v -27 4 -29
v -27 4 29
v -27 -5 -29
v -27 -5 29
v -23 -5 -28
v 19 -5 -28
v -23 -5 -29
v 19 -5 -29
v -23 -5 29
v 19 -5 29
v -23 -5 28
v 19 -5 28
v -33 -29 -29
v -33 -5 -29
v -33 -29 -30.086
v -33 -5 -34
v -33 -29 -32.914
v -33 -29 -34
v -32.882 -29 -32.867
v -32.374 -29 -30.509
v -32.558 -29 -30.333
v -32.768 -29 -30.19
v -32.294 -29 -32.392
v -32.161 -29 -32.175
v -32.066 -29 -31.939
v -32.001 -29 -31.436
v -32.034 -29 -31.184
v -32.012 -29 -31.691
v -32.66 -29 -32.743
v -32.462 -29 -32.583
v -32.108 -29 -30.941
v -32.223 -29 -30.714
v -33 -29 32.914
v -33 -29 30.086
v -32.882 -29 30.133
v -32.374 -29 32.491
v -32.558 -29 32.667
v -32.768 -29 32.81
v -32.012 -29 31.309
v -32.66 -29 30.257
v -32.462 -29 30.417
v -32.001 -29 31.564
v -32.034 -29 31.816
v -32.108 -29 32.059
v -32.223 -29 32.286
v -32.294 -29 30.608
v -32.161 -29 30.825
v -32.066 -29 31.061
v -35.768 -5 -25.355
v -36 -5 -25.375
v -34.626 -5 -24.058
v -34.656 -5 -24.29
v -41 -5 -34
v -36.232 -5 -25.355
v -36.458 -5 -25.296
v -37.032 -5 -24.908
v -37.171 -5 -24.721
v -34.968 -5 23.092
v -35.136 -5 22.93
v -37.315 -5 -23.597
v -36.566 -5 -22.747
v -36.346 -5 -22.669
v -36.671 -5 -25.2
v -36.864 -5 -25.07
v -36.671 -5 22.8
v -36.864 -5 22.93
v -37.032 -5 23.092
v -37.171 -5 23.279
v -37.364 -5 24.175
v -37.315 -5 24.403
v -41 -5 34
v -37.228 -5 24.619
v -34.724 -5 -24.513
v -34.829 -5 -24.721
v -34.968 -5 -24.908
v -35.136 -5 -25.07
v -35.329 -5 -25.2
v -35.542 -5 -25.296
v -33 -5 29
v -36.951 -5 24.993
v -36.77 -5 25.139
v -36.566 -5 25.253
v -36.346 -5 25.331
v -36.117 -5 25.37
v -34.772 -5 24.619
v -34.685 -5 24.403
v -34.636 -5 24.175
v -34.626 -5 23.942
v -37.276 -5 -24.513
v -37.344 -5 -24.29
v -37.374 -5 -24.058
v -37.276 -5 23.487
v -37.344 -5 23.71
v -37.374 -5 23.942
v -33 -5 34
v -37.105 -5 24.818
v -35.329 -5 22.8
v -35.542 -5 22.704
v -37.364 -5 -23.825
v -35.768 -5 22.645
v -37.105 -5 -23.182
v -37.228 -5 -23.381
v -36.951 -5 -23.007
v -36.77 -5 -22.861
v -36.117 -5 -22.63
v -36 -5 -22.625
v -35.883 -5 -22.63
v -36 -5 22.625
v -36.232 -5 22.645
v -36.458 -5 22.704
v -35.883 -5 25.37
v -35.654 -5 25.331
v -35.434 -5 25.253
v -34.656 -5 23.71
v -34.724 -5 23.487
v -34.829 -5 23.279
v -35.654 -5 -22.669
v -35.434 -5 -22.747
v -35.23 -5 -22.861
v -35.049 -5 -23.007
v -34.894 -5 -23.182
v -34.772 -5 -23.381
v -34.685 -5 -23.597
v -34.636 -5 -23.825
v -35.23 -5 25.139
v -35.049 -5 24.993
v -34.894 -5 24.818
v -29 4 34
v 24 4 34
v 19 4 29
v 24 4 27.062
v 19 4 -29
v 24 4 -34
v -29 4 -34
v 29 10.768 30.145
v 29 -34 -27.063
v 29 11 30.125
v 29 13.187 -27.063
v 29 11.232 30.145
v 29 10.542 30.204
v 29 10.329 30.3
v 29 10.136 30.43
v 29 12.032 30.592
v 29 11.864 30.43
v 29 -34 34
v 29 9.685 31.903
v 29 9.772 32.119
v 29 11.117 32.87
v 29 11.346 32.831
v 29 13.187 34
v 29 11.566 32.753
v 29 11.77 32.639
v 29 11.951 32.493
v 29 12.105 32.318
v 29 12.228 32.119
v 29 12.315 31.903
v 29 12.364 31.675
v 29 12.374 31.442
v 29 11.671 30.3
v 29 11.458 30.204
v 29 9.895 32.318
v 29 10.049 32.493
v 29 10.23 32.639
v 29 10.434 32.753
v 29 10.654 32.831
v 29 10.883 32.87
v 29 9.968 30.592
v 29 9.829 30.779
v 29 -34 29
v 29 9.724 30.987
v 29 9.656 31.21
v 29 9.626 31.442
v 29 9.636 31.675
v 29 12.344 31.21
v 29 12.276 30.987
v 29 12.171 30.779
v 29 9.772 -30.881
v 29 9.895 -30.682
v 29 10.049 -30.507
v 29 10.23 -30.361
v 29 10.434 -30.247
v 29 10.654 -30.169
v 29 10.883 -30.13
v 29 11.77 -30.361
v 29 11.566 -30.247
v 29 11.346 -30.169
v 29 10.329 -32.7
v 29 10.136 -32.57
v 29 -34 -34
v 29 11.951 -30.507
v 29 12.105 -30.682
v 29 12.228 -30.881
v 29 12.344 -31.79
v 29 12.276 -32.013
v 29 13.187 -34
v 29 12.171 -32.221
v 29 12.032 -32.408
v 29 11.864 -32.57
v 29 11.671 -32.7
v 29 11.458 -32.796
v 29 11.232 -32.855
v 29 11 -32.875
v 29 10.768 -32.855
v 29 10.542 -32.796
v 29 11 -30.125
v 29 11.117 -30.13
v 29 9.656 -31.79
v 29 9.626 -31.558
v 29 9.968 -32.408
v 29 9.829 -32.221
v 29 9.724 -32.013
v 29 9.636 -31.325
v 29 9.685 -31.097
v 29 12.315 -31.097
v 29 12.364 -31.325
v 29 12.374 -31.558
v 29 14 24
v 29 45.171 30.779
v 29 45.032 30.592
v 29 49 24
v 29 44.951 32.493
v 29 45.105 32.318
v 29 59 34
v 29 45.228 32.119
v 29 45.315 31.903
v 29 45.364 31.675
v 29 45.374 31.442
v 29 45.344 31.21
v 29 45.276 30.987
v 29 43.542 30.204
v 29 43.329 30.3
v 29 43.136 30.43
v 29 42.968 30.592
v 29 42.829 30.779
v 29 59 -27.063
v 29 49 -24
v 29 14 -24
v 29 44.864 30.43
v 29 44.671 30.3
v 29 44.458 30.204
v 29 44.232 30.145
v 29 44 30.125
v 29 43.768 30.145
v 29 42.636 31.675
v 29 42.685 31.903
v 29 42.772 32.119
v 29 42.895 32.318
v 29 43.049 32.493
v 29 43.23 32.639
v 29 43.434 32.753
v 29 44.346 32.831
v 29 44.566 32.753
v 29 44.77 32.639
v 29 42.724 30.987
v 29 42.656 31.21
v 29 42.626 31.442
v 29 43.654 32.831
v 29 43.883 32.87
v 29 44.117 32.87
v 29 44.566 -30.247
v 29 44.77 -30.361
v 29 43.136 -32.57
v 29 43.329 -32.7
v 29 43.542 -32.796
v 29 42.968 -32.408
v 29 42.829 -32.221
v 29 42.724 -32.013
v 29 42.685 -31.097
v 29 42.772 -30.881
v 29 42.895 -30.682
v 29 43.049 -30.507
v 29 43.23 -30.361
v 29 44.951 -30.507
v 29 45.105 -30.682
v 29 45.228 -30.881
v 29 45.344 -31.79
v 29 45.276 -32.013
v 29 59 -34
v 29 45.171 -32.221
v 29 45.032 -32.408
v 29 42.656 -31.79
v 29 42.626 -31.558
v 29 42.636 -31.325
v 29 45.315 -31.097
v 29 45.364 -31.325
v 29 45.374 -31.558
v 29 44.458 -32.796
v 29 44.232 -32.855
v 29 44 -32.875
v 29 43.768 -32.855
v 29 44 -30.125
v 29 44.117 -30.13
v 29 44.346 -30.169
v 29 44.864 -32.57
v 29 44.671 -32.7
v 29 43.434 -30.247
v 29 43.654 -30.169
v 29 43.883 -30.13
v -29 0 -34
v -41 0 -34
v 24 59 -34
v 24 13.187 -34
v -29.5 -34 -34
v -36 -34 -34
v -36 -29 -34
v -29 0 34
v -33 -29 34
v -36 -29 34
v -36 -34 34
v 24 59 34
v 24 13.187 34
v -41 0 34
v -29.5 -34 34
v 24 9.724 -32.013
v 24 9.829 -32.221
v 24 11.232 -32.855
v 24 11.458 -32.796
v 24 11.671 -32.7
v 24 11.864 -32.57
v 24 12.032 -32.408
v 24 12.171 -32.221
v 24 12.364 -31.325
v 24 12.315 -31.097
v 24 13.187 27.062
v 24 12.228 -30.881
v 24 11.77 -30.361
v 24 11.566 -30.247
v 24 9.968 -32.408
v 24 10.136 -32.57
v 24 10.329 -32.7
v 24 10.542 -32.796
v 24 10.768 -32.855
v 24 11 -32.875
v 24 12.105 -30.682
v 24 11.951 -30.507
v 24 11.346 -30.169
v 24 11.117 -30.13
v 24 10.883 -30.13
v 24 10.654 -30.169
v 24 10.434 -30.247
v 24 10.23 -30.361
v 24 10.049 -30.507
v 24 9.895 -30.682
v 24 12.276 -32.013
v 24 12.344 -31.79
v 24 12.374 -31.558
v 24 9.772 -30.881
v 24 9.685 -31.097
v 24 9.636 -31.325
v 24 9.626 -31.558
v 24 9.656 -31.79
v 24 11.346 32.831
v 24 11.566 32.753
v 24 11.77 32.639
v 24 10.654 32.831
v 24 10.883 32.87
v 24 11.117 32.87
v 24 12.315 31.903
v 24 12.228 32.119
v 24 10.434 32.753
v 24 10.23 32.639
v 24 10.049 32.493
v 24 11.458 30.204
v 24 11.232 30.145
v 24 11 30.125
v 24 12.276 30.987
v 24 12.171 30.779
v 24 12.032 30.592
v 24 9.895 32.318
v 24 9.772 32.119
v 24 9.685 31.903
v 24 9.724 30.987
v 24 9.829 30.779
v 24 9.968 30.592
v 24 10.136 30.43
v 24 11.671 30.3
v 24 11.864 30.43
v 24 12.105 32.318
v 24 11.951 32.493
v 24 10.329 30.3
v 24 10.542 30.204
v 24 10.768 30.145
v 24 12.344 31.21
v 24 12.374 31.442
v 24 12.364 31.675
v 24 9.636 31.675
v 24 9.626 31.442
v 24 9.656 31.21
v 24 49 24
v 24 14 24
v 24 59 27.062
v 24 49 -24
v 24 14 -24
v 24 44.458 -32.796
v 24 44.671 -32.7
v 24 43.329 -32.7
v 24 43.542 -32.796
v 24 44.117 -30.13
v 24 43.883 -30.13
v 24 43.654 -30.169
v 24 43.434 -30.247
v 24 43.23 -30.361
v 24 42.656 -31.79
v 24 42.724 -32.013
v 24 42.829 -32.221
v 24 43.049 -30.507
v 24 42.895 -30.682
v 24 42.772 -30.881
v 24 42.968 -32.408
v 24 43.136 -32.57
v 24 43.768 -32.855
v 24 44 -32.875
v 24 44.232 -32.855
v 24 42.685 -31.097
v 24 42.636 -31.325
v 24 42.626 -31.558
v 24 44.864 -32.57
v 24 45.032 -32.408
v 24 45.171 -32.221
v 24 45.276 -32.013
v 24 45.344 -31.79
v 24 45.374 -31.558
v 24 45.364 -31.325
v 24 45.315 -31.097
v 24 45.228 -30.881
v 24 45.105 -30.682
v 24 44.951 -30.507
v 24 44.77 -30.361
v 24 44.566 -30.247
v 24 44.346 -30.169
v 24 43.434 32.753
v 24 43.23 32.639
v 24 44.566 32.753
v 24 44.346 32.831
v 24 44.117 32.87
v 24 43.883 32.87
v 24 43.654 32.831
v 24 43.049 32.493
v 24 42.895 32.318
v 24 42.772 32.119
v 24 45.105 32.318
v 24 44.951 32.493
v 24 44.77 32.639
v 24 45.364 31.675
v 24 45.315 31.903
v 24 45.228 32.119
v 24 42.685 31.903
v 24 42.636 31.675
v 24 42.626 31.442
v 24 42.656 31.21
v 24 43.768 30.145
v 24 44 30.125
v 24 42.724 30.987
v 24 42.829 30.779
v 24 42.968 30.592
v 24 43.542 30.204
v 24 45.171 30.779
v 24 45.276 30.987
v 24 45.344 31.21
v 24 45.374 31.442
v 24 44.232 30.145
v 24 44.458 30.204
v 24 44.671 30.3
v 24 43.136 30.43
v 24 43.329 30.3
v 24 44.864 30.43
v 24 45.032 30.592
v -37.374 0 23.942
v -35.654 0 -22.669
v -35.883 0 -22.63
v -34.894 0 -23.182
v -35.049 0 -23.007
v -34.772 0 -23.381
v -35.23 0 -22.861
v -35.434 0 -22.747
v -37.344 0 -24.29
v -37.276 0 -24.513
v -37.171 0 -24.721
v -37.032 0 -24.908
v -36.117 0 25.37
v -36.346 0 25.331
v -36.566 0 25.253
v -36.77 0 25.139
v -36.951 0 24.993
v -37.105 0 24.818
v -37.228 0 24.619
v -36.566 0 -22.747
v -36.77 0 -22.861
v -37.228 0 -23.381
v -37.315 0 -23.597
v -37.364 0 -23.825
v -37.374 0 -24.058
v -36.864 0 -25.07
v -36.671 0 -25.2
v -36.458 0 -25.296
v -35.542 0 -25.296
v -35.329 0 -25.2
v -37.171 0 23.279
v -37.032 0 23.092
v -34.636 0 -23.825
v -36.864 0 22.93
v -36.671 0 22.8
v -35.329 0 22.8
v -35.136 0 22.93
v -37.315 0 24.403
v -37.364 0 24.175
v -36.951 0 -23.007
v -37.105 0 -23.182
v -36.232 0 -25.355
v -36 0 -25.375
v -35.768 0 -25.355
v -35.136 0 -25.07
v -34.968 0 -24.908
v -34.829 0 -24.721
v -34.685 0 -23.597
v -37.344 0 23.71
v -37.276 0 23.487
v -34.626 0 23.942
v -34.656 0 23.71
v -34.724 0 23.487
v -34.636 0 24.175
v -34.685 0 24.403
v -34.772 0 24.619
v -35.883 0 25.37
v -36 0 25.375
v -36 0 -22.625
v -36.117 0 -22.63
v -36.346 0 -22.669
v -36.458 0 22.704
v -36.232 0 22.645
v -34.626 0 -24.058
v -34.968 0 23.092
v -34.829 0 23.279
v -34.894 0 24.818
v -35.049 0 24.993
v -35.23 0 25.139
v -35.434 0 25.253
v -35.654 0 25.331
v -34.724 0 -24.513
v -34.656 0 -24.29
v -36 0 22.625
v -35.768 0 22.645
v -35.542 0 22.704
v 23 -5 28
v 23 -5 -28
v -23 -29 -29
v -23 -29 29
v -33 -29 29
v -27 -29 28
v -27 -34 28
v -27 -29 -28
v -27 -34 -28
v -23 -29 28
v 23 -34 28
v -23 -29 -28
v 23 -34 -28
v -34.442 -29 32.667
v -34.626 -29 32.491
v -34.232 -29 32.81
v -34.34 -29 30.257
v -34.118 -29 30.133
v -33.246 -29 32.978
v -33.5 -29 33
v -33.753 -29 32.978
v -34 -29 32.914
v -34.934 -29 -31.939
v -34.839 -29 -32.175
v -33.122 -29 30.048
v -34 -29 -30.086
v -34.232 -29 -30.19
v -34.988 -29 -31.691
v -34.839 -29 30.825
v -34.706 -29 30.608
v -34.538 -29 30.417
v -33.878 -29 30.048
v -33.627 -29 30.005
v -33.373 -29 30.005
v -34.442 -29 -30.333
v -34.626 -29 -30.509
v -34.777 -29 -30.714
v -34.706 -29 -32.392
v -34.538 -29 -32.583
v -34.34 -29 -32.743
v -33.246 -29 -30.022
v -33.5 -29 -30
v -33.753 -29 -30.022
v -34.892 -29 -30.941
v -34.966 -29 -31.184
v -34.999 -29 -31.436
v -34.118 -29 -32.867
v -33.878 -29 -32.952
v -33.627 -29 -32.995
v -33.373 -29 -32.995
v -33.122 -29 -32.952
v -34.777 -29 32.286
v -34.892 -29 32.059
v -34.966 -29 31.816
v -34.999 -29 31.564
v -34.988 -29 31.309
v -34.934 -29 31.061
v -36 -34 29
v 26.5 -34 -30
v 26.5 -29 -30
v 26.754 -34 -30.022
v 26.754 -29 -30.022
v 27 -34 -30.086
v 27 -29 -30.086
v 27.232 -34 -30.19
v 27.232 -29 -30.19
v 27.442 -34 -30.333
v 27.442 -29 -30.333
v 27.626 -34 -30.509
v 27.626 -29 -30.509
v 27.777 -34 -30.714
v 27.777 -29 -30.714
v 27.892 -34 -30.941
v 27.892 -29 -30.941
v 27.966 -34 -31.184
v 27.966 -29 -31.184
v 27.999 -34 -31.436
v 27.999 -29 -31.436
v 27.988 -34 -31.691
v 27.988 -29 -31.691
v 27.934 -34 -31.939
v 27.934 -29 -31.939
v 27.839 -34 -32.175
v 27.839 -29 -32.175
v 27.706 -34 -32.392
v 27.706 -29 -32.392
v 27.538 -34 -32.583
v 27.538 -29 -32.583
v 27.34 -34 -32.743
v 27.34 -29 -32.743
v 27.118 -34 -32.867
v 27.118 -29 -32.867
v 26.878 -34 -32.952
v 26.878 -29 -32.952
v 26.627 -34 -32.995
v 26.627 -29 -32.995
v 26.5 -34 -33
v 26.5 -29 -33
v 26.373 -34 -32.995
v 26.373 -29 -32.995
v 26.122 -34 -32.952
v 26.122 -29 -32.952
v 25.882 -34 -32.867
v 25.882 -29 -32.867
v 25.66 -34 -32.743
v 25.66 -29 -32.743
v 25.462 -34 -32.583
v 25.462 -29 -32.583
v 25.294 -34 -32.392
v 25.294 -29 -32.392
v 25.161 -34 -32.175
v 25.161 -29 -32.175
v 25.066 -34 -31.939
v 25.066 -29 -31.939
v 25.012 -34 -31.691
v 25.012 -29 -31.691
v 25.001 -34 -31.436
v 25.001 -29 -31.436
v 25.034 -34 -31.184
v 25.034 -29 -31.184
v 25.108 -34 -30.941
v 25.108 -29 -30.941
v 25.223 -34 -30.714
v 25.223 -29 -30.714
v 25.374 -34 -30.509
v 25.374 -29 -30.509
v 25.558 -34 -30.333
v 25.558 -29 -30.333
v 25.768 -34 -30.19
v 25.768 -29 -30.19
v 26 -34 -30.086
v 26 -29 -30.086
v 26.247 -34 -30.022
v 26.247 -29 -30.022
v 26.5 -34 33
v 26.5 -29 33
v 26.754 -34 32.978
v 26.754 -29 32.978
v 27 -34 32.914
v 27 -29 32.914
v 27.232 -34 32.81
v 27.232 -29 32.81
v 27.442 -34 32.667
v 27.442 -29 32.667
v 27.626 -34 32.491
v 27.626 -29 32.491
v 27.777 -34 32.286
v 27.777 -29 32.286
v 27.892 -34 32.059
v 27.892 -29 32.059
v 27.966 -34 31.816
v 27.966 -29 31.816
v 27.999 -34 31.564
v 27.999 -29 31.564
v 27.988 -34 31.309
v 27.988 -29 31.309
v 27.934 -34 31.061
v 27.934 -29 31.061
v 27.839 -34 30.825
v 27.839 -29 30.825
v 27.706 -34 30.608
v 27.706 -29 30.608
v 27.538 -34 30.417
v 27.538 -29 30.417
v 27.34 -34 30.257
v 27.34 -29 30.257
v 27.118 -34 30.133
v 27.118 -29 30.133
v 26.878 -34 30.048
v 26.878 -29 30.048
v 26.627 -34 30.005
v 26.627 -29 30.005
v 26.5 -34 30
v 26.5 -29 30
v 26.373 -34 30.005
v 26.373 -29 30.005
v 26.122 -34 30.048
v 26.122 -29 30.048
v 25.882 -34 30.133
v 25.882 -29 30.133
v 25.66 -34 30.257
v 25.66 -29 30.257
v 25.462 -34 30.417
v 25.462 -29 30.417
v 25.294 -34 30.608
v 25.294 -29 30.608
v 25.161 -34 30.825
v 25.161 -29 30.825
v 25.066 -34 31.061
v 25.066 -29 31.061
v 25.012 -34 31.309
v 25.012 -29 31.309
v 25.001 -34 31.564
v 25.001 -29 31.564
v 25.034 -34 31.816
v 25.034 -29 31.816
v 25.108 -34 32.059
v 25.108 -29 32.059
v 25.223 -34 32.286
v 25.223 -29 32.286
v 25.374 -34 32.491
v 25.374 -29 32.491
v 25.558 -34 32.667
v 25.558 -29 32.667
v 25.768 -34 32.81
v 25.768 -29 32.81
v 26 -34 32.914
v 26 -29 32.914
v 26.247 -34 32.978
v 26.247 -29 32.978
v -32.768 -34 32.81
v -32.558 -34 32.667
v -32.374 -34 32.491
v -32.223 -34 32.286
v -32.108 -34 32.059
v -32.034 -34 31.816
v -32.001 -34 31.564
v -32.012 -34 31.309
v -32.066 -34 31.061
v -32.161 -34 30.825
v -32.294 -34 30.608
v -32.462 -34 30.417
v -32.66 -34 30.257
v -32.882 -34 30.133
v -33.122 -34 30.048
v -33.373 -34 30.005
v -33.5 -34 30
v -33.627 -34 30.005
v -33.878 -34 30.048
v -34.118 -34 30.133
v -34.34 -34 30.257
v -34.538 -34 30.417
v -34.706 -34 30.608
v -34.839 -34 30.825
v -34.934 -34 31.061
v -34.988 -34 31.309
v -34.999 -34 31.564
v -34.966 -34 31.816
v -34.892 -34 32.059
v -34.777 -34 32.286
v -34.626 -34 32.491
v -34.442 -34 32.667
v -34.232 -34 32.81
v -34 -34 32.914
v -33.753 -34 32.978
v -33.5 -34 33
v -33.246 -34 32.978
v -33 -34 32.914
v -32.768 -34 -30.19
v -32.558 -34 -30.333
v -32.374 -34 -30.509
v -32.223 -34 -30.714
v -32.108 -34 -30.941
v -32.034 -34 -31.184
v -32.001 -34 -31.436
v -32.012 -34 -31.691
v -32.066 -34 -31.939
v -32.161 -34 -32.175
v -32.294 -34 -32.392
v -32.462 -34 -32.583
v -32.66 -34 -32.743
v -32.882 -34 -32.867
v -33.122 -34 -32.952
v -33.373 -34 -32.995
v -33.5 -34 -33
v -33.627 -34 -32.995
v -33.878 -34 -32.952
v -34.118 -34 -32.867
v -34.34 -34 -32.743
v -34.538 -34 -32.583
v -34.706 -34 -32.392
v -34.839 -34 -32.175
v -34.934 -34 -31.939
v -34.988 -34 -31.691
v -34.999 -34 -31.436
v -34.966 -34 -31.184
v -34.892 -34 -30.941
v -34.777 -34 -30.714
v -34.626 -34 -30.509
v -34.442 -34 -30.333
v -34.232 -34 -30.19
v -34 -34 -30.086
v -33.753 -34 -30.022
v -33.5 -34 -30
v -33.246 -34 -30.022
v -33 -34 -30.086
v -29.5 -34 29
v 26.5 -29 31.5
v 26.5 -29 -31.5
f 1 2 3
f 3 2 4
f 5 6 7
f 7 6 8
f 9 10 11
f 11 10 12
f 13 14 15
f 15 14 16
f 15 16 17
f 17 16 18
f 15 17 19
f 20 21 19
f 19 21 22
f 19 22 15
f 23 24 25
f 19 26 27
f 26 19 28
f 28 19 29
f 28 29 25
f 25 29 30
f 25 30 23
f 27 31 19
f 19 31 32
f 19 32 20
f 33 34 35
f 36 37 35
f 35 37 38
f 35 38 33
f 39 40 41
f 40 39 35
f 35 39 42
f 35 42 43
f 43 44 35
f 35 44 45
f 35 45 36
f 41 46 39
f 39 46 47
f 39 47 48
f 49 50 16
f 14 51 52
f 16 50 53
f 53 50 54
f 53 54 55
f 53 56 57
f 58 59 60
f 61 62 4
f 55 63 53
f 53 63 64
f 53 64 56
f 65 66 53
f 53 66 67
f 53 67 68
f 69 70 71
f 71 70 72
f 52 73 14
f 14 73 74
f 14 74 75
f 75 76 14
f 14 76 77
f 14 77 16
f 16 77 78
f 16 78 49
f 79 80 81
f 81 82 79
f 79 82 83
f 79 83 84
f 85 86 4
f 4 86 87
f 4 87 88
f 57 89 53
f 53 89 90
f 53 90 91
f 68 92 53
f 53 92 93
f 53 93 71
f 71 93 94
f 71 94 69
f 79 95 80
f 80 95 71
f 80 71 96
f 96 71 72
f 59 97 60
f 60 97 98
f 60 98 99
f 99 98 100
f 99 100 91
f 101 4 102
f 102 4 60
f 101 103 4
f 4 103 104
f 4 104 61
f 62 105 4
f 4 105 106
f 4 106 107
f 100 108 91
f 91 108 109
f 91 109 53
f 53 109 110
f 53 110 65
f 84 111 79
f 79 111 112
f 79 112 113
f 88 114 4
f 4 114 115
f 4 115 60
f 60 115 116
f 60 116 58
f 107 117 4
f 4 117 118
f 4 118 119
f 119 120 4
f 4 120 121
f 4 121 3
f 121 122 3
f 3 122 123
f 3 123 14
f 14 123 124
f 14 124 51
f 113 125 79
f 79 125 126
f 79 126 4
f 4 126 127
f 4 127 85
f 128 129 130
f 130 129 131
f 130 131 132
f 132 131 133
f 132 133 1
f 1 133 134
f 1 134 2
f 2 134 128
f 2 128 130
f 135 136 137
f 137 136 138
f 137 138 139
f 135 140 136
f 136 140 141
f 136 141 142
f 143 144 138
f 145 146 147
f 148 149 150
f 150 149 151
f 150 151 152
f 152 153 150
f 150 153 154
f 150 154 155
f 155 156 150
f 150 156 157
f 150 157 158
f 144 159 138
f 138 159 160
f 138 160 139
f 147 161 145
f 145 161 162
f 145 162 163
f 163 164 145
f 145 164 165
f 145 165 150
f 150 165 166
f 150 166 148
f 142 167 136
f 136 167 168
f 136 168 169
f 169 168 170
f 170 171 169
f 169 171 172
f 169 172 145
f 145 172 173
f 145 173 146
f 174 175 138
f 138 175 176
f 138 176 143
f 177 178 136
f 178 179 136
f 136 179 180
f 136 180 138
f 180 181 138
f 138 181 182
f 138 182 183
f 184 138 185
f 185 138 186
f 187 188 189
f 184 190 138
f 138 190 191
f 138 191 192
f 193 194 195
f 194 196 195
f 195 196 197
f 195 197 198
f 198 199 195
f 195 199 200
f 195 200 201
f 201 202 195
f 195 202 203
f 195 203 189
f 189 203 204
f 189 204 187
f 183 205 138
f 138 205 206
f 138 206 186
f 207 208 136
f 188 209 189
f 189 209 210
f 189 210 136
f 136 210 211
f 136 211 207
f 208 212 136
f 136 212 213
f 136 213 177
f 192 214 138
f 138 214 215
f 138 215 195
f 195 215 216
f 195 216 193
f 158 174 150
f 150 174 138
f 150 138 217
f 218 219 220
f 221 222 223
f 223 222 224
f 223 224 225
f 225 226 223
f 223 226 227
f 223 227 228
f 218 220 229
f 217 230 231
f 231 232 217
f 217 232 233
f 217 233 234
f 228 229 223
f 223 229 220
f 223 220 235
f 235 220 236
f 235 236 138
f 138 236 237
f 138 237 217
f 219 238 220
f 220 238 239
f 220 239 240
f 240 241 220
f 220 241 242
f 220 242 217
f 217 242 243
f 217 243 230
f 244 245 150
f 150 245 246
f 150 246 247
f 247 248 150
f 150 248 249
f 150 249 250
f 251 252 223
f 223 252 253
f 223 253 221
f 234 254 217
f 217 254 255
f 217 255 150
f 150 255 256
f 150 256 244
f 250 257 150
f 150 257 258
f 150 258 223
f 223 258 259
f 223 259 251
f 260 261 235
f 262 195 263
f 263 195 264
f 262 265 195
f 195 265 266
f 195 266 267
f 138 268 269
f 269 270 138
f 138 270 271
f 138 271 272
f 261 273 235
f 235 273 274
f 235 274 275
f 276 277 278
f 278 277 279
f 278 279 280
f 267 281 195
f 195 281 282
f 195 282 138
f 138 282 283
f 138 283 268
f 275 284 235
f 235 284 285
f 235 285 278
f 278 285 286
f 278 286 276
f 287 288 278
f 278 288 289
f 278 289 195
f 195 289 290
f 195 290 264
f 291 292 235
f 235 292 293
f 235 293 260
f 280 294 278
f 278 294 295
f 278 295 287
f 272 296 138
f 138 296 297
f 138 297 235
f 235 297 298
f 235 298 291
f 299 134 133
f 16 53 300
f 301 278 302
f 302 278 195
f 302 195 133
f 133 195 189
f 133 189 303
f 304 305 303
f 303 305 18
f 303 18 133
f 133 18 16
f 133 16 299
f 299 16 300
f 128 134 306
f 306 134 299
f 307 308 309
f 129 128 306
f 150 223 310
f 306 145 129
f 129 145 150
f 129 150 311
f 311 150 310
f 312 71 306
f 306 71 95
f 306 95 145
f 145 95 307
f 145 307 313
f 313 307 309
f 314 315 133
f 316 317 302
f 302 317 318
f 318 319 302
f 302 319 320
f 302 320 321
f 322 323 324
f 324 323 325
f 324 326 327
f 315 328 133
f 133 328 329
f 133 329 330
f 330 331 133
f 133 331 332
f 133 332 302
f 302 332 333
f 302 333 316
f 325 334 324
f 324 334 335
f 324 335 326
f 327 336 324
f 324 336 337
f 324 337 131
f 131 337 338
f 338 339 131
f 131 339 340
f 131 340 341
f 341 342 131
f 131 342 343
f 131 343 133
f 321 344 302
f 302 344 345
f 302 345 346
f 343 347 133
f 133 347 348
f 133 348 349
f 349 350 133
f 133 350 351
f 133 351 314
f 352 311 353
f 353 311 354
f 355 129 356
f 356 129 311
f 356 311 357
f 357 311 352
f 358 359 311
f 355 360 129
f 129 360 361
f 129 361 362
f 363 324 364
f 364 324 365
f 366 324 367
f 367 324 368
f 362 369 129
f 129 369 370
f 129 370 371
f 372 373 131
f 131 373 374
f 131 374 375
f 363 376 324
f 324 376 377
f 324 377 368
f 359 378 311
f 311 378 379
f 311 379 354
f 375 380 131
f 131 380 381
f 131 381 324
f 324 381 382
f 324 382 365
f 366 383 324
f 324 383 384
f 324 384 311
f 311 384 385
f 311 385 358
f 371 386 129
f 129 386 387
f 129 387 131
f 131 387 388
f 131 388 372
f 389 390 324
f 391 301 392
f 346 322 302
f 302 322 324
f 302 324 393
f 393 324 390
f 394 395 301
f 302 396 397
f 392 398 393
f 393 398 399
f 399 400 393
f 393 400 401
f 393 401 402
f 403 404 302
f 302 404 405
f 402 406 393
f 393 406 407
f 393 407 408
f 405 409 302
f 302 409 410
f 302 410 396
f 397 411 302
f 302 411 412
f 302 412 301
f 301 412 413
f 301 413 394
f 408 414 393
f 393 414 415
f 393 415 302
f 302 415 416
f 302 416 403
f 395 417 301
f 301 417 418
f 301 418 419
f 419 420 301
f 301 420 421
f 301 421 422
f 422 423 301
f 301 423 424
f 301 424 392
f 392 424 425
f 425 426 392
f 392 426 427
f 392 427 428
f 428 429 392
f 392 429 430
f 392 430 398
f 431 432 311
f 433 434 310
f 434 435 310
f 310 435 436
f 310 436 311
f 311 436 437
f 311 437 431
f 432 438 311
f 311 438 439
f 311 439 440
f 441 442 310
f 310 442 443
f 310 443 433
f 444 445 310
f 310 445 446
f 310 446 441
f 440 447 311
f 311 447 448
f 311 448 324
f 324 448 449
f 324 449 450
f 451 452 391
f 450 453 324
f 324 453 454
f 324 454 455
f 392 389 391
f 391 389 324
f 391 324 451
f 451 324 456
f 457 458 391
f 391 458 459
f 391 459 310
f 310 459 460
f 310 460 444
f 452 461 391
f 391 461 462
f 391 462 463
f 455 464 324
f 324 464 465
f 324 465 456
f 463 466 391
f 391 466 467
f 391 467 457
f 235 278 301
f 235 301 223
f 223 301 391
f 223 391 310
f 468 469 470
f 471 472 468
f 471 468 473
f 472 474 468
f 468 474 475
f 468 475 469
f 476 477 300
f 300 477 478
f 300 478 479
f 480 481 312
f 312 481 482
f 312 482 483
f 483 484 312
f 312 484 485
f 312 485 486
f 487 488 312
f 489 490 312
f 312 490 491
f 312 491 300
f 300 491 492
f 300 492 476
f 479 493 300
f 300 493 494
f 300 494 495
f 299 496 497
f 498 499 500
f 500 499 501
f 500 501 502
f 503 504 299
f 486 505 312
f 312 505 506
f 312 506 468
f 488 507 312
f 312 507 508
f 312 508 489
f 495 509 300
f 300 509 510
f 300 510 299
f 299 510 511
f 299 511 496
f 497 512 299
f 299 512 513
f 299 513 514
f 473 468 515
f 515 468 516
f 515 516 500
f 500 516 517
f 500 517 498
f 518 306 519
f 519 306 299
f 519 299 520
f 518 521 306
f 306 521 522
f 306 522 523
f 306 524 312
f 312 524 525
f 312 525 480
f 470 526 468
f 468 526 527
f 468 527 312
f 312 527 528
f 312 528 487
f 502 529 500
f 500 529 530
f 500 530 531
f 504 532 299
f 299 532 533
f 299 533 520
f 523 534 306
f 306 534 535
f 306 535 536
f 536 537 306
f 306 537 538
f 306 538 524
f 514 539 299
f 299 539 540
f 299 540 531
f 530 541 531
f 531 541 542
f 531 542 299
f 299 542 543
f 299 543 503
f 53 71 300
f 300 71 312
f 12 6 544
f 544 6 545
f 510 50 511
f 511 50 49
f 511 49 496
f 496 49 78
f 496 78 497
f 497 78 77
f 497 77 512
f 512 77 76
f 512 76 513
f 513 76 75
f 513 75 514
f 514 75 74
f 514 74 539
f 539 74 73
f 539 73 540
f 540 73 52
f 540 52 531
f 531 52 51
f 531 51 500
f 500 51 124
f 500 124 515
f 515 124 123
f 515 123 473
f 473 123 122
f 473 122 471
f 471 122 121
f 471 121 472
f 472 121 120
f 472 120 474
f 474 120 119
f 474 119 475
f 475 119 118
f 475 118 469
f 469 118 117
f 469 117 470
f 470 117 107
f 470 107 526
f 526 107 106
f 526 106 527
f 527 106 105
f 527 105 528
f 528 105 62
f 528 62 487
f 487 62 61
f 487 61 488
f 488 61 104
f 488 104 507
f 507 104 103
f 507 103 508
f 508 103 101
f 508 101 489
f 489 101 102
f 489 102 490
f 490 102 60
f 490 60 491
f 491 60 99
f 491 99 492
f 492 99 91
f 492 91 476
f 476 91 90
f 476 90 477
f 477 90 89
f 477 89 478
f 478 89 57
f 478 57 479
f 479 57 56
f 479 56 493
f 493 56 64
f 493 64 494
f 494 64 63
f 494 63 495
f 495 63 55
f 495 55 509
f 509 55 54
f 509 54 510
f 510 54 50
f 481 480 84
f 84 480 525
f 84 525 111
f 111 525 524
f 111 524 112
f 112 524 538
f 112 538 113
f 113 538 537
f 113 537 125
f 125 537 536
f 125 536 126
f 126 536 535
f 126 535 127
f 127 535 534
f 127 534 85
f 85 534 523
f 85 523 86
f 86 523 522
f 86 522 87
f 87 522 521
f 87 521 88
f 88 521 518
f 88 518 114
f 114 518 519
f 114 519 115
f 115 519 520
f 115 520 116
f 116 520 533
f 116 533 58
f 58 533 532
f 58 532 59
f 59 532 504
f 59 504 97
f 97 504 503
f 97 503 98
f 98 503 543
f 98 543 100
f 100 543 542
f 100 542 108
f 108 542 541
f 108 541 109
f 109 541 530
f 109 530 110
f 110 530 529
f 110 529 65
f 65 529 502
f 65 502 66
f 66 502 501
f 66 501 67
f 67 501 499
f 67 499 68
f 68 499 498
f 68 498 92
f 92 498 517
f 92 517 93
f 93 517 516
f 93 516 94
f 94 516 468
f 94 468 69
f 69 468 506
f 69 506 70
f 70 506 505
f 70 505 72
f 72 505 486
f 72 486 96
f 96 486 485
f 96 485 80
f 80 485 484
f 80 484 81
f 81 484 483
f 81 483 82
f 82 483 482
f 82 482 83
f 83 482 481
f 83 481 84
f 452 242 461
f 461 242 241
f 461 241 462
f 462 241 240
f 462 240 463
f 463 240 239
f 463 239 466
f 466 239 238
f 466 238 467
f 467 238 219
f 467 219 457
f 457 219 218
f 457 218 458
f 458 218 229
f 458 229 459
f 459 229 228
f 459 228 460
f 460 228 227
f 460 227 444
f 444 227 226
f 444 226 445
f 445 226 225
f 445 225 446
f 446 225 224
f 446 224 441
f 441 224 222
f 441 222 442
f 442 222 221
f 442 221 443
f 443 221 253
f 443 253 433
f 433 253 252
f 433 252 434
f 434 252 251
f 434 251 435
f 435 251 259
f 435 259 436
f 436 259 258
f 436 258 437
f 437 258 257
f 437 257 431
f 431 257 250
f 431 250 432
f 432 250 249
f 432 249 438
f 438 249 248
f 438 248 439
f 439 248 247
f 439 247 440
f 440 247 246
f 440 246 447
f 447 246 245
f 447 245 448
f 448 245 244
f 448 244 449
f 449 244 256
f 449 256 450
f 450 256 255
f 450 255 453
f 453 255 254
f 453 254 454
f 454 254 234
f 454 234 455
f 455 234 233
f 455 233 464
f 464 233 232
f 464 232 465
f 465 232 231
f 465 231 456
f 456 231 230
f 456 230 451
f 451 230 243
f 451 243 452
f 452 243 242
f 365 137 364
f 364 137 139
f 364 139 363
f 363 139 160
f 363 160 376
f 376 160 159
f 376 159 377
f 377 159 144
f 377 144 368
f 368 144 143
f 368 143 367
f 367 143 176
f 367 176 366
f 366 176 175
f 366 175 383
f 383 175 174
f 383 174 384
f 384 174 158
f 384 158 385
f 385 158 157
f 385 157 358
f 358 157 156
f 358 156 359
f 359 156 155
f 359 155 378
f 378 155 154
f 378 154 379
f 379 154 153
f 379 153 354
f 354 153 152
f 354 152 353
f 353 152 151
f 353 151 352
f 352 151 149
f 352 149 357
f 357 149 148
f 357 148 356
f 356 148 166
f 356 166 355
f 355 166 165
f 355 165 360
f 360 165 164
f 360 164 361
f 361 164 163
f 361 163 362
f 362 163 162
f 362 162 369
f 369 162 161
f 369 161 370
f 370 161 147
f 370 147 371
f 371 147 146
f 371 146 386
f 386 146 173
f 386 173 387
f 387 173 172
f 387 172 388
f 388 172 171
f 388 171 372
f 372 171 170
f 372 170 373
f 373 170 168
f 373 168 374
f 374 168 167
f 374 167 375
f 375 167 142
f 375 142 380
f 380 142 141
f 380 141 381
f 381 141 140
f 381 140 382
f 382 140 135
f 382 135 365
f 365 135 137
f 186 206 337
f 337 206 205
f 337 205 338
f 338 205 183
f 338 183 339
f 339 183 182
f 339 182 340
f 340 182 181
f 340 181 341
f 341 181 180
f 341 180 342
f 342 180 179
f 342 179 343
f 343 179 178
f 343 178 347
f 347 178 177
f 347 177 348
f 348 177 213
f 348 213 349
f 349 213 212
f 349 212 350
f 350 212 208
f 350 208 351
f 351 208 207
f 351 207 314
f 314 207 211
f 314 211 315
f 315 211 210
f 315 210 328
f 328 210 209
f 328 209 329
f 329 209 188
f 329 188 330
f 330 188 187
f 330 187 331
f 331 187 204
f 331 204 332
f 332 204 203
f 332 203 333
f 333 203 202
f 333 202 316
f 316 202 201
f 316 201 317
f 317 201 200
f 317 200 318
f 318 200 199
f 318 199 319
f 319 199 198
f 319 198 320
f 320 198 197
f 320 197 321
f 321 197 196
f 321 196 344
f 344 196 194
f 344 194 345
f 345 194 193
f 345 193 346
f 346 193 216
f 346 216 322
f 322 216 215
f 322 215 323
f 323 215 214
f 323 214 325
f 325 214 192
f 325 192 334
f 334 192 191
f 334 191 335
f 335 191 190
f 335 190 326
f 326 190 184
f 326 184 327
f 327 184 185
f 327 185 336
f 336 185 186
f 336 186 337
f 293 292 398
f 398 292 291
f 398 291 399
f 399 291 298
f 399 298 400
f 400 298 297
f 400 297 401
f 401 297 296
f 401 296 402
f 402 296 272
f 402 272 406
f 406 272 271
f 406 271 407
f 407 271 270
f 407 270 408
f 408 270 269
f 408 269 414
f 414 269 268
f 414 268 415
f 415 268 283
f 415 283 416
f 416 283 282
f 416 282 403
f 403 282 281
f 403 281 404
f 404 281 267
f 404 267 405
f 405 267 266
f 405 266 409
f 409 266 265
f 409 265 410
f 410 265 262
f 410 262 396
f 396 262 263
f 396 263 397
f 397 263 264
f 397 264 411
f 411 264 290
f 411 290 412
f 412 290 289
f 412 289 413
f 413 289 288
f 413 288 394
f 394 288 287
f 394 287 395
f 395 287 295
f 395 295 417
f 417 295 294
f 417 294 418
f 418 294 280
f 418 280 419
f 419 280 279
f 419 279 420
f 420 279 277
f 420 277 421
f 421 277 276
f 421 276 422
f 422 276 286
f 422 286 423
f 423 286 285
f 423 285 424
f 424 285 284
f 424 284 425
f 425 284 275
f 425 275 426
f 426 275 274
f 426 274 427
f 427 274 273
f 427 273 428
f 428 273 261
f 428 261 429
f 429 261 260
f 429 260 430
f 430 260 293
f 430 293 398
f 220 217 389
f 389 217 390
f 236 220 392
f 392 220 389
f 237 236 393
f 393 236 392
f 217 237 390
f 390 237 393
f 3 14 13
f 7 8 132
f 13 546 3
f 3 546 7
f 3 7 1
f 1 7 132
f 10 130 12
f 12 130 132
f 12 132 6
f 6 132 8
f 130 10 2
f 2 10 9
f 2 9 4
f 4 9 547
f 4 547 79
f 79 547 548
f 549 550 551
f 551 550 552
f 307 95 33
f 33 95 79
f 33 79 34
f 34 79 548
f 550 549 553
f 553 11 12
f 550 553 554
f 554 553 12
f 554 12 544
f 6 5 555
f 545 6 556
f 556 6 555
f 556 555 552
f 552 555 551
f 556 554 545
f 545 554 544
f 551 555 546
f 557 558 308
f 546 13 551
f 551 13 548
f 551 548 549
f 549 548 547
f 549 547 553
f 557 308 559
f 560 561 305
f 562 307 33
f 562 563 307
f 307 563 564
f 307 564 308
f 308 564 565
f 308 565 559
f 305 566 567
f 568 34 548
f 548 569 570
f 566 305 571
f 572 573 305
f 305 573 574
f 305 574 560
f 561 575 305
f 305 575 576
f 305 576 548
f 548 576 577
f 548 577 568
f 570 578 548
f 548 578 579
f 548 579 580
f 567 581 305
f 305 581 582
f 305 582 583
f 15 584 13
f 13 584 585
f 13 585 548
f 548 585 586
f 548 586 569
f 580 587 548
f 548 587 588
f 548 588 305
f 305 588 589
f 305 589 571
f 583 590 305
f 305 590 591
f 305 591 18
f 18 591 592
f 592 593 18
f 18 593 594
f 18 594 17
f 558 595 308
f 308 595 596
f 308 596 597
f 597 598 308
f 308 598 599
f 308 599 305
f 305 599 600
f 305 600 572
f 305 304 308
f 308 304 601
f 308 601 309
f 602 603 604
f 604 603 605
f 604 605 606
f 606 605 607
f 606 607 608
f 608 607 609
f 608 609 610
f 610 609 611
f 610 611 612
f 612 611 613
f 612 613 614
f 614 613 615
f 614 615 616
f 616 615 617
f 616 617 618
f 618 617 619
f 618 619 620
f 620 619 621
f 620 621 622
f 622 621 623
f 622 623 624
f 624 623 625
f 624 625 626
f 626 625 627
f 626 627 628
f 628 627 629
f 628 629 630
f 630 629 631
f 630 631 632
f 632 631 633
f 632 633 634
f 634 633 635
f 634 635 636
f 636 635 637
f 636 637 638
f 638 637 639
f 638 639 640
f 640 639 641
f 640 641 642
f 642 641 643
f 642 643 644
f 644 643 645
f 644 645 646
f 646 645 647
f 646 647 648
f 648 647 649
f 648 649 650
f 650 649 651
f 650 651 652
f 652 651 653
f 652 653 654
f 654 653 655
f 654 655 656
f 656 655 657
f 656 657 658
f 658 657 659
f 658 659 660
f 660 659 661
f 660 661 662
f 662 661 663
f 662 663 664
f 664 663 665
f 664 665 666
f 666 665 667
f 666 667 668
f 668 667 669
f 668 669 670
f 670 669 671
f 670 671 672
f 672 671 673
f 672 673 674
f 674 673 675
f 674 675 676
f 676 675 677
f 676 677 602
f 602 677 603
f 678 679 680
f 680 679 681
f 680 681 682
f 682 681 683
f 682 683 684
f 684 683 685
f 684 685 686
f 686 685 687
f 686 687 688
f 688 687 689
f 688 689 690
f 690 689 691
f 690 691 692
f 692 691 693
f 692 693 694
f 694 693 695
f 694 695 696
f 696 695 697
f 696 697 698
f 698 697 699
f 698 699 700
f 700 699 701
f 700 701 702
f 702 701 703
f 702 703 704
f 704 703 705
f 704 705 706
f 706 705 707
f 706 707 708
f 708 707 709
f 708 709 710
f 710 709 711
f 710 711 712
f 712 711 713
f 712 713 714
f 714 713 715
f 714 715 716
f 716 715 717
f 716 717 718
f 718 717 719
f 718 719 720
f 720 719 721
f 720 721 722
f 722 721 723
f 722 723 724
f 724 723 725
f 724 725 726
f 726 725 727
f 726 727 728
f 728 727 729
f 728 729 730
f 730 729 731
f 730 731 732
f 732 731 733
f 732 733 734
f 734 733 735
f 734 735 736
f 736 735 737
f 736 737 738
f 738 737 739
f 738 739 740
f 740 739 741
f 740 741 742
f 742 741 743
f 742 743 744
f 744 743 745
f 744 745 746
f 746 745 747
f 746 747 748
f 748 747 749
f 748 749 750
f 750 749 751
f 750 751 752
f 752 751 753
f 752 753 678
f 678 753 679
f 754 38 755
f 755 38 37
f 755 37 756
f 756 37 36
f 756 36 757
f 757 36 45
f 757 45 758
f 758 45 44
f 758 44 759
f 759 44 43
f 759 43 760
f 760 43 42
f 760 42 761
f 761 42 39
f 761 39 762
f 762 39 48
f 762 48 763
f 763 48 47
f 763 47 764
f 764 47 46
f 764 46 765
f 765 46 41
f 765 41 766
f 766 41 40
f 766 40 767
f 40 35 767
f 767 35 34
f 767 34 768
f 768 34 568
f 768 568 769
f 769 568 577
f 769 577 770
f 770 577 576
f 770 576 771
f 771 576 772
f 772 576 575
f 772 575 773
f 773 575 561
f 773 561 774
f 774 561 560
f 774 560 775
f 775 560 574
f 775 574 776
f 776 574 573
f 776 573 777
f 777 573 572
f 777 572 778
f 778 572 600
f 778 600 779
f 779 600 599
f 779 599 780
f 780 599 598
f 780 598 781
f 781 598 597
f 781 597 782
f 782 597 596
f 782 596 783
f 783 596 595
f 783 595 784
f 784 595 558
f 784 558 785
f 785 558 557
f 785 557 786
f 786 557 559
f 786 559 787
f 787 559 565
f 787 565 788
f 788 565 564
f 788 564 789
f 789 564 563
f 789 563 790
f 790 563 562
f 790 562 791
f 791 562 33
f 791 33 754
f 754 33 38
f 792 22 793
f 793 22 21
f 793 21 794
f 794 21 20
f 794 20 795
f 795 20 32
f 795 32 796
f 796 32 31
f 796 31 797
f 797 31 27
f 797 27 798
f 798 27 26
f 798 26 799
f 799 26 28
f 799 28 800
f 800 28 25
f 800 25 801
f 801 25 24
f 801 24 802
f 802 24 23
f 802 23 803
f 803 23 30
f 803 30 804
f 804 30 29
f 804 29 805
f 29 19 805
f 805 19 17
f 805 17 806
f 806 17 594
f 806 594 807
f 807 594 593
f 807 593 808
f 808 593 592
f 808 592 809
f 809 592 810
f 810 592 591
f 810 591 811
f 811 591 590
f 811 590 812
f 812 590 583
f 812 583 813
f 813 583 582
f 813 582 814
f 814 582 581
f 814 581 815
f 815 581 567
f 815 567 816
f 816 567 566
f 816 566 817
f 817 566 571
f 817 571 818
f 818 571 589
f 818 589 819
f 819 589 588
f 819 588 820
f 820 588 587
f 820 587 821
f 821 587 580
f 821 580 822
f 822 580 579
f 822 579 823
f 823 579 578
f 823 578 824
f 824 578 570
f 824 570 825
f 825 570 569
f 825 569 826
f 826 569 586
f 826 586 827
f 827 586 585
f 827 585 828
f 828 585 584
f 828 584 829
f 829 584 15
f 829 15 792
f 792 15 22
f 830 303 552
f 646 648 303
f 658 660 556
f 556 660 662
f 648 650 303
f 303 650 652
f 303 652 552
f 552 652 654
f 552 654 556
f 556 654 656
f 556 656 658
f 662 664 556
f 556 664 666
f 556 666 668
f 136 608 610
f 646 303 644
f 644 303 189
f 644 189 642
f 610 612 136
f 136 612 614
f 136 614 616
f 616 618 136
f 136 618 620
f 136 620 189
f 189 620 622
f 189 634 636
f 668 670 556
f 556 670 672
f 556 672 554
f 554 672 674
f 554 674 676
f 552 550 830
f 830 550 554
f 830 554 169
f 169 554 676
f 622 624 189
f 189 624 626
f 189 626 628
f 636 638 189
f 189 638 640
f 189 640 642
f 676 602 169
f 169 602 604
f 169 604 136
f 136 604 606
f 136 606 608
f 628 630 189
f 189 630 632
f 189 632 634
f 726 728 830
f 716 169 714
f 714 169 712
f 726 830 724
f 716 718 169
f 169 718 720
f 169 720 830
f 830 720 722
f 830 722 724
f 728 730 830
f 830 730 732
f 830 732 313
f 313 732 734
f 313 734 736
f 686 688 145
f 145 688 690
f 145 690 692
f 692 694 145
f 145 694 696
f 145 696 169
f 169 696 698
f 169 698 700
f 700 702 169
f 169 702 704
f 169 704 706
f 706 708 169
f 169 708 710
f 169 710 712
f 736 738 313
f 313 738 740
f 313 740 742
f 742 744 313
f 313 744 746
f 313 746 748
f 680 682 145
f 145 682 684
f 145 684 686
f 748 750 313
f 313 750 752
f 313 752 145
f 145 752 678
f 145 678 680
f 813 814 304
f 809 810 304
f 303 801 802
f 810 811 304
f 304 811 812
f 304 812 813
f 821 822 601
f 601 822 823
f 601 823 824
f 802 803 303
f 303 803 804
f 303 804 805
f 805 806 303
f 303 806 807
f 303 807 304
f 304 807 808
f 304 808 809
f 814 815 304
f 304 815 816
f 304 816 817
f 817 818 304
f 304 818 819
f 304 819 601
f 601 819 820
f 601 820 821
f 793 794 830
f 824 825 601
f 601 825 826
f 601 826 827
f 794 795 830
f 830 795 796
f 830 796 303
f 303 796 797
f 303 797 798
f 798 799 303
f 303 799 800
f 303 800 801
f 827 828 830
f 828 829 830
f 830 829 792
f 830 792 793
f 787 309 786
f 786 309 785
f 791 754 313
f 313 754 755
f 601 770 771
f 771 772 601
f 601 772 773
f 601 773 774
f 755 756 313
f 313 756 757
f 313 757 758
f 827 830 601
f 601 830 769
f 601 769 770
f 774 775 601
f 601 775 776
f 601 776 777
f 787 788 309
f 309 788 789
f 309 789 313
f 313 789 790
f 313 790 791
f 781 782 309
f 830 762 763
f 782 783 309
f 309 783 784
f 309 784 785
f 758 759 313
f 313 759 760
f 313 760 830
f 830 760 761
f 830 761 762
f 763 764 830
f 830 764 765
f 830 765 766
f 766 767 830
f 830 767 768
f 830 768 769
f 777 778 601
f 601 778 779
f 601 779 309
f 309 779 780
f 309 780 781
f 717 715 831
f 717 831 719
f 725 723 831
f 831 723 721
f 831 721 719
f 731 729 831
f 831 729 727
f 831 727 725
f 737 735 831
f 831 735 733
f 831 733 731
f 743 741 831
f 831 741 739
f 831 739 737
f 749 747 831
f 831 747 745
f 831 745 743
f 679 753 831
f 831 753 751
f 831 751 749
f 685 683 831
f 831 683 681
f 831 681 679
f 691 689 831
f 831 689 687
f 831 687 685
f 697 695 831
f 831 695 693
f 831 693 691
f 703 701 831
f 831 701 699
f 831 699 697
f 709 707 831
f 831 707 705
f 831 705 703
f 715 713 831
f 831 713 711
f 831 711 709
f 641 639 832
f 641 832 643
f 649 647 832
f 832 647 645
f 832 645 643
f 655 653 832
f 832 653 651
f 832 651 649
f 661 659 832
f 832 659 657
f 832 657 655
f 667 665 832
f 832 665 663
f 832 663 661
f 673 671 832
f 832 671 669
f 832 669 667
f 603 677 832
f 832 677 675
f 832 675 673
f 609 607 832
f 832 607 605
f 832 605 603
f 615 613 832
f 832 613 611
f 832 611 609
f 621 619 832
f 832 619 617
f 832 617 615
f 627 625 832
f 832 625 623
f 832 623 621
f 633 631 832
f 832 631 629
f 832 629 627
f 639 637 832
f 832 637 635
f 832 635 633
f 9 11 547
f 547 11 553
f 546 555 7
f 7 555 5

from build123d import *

# Parameters (mm, degrees)
SKETCH1_W           = 58
SKETCH1_H           = 68
BOSS_EXTRUDE1_DEPTH = 4
SKETCH2_W           = 5
SKETCH2_H           = 68
BOSS_EXTRUDE2_DEPTH = 55
SKETCH3_W           = 70
SKETCH3_H           = 68
BOSS_EXTRUDE3_DEPTH = 5
CUT_EXTRUDE1_REACH  = 85.265
SKETCH4_R           = 1.375
CUT_EXTRUDE2_REACH  = 99.658
SKETCH5_R           = 1.375
SKETCH5_W           = 48
SKETCH5_H           = 35
CUT_EXTRUDE4_REACH  = 78.564
SKETCH6_W           = 46
SKETCH6_H           = 58
SKETCH7_W           = 62
SKETCH7_H           = 68
SKETCH7_W_2         = 50
SKETCH7_H_2         = 56
BOSS_EXTRUDE4_DEPTH = 24
SKETCH8_W           = 65
SKETCH8_H           = 68
SKETCH8_R           = 1.5
BOSS_EXTRUDE5_DEPTH = 5
SKETCH9_W           = 50
SKETCH9_H           = 56
CUT_EXTRUDE5_DEPTH  = 10
SKETCH10_W          = 58
SKETCH10_H          = 24
CUT_EXTRUDE6_DEPTH  = 10


with BuildPart() as part:
    # Sketch1 → Boss-Extrude1 (new body)
    with BuildSketch(Plane(origin=(0, 0, 0), x_dir=(1, 0, 0), z_dir=(0, 1, 0))):
        Rectangle(SKETCH1_W, SKETCH1_H)
    extrude(amount=BOSS_EXTRUDE1_DEPTH)

    # Sketch2 → Boss-Extrude2 (add)
    with BuildSketch(Plane(origin=(0, 4, 0), x_dir=(1, 0, 0), z_dir=(0, 1, 0))):
        with Locations((26.5, 0)):
            Rectangle(SKETCH2_W, SKETCH2_H)
    extrude(amount=BOSS_EXTRUDE2_DEPTH)

    # Sketch3 → Boss-Extrude3 (add)
    with BuildSketch(Plane.XZ):
        with Locations((-6, 0)):
            Rectangle(SKETCH3_W, SKETCH3_H)
    extrude(amount=BOSS_EXTRUDE3_DEPTH)

    # Sketch4 → Cut-Extrude1 (cut, up to next)
    with BuildSketch(Plane.XZ.offset(5), mode=Mode.PRIVATE) as cut_extrude1_sk1:
        with Locations(Location((-36, 24, 0), (0, 0, 270))):
            Circle(SKETCH4_R)
    cut_extrude1_tool1 = extrude(cut_extrude1_sk1.sketch, amount=-CUT_EXTRUDE1_REACH, mode=Mode.PRIVATE) & part.part
    # Sketch4 → Cut-Extrude1 (cut, up to next)
    with BuildSketch(Plane.XZ.offset(5), mode=Mode.PRIVATE) as cut_extrude1_sk2:
        with Locations(Location((-36, -24, 0), (0, 0, 90))):
            Circle(SKETCH4_R)
    cut_extrude1_tool2 = extrude(cut_extrude1_sk2.sketch, amount=-CUT_EXTRUDE1_REACH, mode=Mode.PRIVATE) & part.part
    add(cut_extrude1_tool1.solids().sort_by_distance((-36, -5, 24))[0], mode=Mode.SUBTRACT)
    add(cut_extrude1_tool2.solids().sort_by_distance((-36, -5, -24))[0], mode=Mode.SUBTRACT)

    # Sketch5 → Cut-Extrude2 (cut, up to next)
    with BuildSketch(Plane(origin=(29, 0, 0), x_dir=(0, 0, -1), z_dir=(1, 0, 0)), mode=Mode.PRIVATE) as cut_extrude2_sk1:
        with Locations((-31.5, 44)):
            Circle(SKETCH5_R)
    cut_extrude2_tool1 = extrude(cut_extrude2_sk1.sketch, amount=-CUT_EXTRUDE2_REACH, mode=Mode.PRIVATE) & part.part
    # Sketch5 → Cut-Extrude2 (cut, up to next)
    with BuildSketch(Plane(origin=(29, 0, 0), x_dir=(0, 0, -1), z_dir=(1, 0, 0)), mode=Mode.PRIVATE) as cut_extrude2_sk2:
        with Locations((-31.5, 11)):
            Circle(SKETCH5_R)
    cut_extrude2_tool2 = extrude(cut_extrude2_sk2.sketch, amount=-CUT_EXTRUDE2_REACH, mode=Mode.PRIVATE) & part.part
    # Sketch5 → Cut-Extrude2 (cut, up to next)
    with BuildSketch(Plane(origin=(29, 0, 0), x_dir=(0, 0, -1), z_dir=(1, 0, 0)), mode=Mode.PRIVATE) as cut_extrude2_sk3:
        with Locations((31.5, 11)):
            Circle(SKETCH5_R)
    cut_extrude2_tool3 = extrude(cut_extrude2_sk3.sketch, amount=-CUT_EXTRUDE2_REACH, mode=Mode.PRIVATE) & part.part
    # Sketch5 → Cut-Extrude2 (cut, up to next)
    with BuildSketch(Plane(origin=(29, 0, 0), x_dir=(0, 0, -1), z_dir=(1, 0, 0)), mode=Mode.PRIVATE) as cut_extrude2_sk4:
        with Locations((31.5, 44)):
            Circle(SKETCH5_R)
    cut_extrude2_tool4 = extrude(cut_extrude2_sk4.sketch, amount=-CUT_EXTRUDE2_REACH, mode=Mode.PRIVATE) & part.part
    # Sketch5 → Cut-Extrude2 (cut, up to next)
    with BuildSketch(Plane(origin=(29, 0, 0), x_dir=(0, 0, -1), z_dir=(1, 0, 0)), mode=Mode.PRIVATE) as cut_extrude2_sk5:
        with Locations((0, 31.5)):
            Rectangle(SKETCH5_W, SKETCH5_H)
    cut_extrude2_tool5 = extrude(cut_extrude2_sk5.sketch, amount=-CUT_EXTRUDE2_REACH, mode=Mode.PRIVATE) & part.part
    add(cut_extrude2_tool1.solids().sort_by_distance((29, 44, 31.5))[0], mode=Mode.SUBTRACT)
    add(cut_extrude2_tool2.solids().sort_by_distance((29, 11, 31.5))[0], mode=Mode.SUBTRACT)
    add(cut_extrude2_tool3.solids().sort_by_distance((29, 11, -31.5))[0], mode=Mode.SUBTRACT)
    add(cut_extrude2_tool4.solids().sort_by_distance((29, 44, -31.5))[0], mode=Mode.SUBTRACT)
    add(cut_extrude2_tool5.solids().sort_by_distance((29, 31.5, 0))[0], mode=Mode.SUBTRACT)

    # Sketch6 → Cut-Extrude4 (cut, up to next)
    with BuildSketch(Plane(origin=(0, 4, 0), x_dir=(1, 0, 0), z_dir=(0, 1, 0)), mode=Mode.PRIVATE) as cut_extrude4_sk1:
        with Locations((-4, 0)):
            Rectangle(SKETCH6_W, SKETCH6_H)
    cut_extrude4_tool1 = extrude(cut_extrude4_sk1.sketch, amount=-CUT_EXTRUDE4_REACH, mode=Mode.PRIVATE) & part.part
    add(cut_extrude4_tool1.solids().sort_by_distance((-4, 4, 0))[0], mode=Mode.SUBTRACT)

    # Sketch7 → Boss-Extrude4 (add)
    with BuildSketch(Plane.XZ.offset(5)):
        with Locations((-2, 0)):
            Rectangle(SKETCH7_W, SKETCH7_H)
        with Locations((-2, 0)):
            Rectangle(SKETCH7_W_2, SKETCH7_H_2, mode=Mode.SUBTRACT)
    extrude(amount=BOSS_EXTRUDE4_DEPTH)

    # Sketch8 → Boss-Extrude5 (add)
    with BuildSketch(Plane.XZ.offset(29)):
        with Locations((-3.5, 0)):
            Rectangle(SKETCH8_W, SKETCH8_H)
        with Locations(Location((26.5, -31.5, 0), (0, 0, 270))):
            Circle(SKETCH8_R, mode=Mode.SUBTRACT)
        with Locations(Location((-33.5, -31.5, 0), (0, 0, 70.528779366))):
            Circle(SKETCH8_R, mode=Mode.SUBTRACT)
        with Locations(Location((-33.5, 31.5, 0), (0, 0, 70.528779366))):
            Circle(SKETCH8_R, mode=Mode.SUBTRACT)
        with Locations(Location((26.5, 31.5, 0), (0, 0, 270))):
            Circle(SKETCH8_R, mode=Mode.SUBTRACT)
        with Locations(Location((-3.5, 0, 0), (0, 0, 270))):
            Circle(SKETCH8_R, mode=Mode.SUBTRACT)
    extrude(amount=BOSS_EXTRUDE5_DEPTH)

    # Sketch9 → Cut-Extrude5 (cut)
    with BuildSketch(Plane(origin=(0, -29, 0), x_dir=(1, 0, 0), z_dir=(0, 1, 0))):
        with Locations((-2, 0)):
            Rectangle(SKETCH9_W, SKETCH9_H)
    extrude(amount=-CUT_EXTRUDE5_DEPTH, mode=Mode.SUBTRACT)

    # Sketch10 → Cut-Extrude6 (cut)
    with BuildSketch(Plane.ZY.offset(33)):
        with Locations((0, -17)):
            Rectangle(SKETCH10_W, SKETCH10_H)
    extrude(amount=-CUT_EXTRUDE6_DEPTH, mode=Mode.SUBTRACT)


solid = part.part
